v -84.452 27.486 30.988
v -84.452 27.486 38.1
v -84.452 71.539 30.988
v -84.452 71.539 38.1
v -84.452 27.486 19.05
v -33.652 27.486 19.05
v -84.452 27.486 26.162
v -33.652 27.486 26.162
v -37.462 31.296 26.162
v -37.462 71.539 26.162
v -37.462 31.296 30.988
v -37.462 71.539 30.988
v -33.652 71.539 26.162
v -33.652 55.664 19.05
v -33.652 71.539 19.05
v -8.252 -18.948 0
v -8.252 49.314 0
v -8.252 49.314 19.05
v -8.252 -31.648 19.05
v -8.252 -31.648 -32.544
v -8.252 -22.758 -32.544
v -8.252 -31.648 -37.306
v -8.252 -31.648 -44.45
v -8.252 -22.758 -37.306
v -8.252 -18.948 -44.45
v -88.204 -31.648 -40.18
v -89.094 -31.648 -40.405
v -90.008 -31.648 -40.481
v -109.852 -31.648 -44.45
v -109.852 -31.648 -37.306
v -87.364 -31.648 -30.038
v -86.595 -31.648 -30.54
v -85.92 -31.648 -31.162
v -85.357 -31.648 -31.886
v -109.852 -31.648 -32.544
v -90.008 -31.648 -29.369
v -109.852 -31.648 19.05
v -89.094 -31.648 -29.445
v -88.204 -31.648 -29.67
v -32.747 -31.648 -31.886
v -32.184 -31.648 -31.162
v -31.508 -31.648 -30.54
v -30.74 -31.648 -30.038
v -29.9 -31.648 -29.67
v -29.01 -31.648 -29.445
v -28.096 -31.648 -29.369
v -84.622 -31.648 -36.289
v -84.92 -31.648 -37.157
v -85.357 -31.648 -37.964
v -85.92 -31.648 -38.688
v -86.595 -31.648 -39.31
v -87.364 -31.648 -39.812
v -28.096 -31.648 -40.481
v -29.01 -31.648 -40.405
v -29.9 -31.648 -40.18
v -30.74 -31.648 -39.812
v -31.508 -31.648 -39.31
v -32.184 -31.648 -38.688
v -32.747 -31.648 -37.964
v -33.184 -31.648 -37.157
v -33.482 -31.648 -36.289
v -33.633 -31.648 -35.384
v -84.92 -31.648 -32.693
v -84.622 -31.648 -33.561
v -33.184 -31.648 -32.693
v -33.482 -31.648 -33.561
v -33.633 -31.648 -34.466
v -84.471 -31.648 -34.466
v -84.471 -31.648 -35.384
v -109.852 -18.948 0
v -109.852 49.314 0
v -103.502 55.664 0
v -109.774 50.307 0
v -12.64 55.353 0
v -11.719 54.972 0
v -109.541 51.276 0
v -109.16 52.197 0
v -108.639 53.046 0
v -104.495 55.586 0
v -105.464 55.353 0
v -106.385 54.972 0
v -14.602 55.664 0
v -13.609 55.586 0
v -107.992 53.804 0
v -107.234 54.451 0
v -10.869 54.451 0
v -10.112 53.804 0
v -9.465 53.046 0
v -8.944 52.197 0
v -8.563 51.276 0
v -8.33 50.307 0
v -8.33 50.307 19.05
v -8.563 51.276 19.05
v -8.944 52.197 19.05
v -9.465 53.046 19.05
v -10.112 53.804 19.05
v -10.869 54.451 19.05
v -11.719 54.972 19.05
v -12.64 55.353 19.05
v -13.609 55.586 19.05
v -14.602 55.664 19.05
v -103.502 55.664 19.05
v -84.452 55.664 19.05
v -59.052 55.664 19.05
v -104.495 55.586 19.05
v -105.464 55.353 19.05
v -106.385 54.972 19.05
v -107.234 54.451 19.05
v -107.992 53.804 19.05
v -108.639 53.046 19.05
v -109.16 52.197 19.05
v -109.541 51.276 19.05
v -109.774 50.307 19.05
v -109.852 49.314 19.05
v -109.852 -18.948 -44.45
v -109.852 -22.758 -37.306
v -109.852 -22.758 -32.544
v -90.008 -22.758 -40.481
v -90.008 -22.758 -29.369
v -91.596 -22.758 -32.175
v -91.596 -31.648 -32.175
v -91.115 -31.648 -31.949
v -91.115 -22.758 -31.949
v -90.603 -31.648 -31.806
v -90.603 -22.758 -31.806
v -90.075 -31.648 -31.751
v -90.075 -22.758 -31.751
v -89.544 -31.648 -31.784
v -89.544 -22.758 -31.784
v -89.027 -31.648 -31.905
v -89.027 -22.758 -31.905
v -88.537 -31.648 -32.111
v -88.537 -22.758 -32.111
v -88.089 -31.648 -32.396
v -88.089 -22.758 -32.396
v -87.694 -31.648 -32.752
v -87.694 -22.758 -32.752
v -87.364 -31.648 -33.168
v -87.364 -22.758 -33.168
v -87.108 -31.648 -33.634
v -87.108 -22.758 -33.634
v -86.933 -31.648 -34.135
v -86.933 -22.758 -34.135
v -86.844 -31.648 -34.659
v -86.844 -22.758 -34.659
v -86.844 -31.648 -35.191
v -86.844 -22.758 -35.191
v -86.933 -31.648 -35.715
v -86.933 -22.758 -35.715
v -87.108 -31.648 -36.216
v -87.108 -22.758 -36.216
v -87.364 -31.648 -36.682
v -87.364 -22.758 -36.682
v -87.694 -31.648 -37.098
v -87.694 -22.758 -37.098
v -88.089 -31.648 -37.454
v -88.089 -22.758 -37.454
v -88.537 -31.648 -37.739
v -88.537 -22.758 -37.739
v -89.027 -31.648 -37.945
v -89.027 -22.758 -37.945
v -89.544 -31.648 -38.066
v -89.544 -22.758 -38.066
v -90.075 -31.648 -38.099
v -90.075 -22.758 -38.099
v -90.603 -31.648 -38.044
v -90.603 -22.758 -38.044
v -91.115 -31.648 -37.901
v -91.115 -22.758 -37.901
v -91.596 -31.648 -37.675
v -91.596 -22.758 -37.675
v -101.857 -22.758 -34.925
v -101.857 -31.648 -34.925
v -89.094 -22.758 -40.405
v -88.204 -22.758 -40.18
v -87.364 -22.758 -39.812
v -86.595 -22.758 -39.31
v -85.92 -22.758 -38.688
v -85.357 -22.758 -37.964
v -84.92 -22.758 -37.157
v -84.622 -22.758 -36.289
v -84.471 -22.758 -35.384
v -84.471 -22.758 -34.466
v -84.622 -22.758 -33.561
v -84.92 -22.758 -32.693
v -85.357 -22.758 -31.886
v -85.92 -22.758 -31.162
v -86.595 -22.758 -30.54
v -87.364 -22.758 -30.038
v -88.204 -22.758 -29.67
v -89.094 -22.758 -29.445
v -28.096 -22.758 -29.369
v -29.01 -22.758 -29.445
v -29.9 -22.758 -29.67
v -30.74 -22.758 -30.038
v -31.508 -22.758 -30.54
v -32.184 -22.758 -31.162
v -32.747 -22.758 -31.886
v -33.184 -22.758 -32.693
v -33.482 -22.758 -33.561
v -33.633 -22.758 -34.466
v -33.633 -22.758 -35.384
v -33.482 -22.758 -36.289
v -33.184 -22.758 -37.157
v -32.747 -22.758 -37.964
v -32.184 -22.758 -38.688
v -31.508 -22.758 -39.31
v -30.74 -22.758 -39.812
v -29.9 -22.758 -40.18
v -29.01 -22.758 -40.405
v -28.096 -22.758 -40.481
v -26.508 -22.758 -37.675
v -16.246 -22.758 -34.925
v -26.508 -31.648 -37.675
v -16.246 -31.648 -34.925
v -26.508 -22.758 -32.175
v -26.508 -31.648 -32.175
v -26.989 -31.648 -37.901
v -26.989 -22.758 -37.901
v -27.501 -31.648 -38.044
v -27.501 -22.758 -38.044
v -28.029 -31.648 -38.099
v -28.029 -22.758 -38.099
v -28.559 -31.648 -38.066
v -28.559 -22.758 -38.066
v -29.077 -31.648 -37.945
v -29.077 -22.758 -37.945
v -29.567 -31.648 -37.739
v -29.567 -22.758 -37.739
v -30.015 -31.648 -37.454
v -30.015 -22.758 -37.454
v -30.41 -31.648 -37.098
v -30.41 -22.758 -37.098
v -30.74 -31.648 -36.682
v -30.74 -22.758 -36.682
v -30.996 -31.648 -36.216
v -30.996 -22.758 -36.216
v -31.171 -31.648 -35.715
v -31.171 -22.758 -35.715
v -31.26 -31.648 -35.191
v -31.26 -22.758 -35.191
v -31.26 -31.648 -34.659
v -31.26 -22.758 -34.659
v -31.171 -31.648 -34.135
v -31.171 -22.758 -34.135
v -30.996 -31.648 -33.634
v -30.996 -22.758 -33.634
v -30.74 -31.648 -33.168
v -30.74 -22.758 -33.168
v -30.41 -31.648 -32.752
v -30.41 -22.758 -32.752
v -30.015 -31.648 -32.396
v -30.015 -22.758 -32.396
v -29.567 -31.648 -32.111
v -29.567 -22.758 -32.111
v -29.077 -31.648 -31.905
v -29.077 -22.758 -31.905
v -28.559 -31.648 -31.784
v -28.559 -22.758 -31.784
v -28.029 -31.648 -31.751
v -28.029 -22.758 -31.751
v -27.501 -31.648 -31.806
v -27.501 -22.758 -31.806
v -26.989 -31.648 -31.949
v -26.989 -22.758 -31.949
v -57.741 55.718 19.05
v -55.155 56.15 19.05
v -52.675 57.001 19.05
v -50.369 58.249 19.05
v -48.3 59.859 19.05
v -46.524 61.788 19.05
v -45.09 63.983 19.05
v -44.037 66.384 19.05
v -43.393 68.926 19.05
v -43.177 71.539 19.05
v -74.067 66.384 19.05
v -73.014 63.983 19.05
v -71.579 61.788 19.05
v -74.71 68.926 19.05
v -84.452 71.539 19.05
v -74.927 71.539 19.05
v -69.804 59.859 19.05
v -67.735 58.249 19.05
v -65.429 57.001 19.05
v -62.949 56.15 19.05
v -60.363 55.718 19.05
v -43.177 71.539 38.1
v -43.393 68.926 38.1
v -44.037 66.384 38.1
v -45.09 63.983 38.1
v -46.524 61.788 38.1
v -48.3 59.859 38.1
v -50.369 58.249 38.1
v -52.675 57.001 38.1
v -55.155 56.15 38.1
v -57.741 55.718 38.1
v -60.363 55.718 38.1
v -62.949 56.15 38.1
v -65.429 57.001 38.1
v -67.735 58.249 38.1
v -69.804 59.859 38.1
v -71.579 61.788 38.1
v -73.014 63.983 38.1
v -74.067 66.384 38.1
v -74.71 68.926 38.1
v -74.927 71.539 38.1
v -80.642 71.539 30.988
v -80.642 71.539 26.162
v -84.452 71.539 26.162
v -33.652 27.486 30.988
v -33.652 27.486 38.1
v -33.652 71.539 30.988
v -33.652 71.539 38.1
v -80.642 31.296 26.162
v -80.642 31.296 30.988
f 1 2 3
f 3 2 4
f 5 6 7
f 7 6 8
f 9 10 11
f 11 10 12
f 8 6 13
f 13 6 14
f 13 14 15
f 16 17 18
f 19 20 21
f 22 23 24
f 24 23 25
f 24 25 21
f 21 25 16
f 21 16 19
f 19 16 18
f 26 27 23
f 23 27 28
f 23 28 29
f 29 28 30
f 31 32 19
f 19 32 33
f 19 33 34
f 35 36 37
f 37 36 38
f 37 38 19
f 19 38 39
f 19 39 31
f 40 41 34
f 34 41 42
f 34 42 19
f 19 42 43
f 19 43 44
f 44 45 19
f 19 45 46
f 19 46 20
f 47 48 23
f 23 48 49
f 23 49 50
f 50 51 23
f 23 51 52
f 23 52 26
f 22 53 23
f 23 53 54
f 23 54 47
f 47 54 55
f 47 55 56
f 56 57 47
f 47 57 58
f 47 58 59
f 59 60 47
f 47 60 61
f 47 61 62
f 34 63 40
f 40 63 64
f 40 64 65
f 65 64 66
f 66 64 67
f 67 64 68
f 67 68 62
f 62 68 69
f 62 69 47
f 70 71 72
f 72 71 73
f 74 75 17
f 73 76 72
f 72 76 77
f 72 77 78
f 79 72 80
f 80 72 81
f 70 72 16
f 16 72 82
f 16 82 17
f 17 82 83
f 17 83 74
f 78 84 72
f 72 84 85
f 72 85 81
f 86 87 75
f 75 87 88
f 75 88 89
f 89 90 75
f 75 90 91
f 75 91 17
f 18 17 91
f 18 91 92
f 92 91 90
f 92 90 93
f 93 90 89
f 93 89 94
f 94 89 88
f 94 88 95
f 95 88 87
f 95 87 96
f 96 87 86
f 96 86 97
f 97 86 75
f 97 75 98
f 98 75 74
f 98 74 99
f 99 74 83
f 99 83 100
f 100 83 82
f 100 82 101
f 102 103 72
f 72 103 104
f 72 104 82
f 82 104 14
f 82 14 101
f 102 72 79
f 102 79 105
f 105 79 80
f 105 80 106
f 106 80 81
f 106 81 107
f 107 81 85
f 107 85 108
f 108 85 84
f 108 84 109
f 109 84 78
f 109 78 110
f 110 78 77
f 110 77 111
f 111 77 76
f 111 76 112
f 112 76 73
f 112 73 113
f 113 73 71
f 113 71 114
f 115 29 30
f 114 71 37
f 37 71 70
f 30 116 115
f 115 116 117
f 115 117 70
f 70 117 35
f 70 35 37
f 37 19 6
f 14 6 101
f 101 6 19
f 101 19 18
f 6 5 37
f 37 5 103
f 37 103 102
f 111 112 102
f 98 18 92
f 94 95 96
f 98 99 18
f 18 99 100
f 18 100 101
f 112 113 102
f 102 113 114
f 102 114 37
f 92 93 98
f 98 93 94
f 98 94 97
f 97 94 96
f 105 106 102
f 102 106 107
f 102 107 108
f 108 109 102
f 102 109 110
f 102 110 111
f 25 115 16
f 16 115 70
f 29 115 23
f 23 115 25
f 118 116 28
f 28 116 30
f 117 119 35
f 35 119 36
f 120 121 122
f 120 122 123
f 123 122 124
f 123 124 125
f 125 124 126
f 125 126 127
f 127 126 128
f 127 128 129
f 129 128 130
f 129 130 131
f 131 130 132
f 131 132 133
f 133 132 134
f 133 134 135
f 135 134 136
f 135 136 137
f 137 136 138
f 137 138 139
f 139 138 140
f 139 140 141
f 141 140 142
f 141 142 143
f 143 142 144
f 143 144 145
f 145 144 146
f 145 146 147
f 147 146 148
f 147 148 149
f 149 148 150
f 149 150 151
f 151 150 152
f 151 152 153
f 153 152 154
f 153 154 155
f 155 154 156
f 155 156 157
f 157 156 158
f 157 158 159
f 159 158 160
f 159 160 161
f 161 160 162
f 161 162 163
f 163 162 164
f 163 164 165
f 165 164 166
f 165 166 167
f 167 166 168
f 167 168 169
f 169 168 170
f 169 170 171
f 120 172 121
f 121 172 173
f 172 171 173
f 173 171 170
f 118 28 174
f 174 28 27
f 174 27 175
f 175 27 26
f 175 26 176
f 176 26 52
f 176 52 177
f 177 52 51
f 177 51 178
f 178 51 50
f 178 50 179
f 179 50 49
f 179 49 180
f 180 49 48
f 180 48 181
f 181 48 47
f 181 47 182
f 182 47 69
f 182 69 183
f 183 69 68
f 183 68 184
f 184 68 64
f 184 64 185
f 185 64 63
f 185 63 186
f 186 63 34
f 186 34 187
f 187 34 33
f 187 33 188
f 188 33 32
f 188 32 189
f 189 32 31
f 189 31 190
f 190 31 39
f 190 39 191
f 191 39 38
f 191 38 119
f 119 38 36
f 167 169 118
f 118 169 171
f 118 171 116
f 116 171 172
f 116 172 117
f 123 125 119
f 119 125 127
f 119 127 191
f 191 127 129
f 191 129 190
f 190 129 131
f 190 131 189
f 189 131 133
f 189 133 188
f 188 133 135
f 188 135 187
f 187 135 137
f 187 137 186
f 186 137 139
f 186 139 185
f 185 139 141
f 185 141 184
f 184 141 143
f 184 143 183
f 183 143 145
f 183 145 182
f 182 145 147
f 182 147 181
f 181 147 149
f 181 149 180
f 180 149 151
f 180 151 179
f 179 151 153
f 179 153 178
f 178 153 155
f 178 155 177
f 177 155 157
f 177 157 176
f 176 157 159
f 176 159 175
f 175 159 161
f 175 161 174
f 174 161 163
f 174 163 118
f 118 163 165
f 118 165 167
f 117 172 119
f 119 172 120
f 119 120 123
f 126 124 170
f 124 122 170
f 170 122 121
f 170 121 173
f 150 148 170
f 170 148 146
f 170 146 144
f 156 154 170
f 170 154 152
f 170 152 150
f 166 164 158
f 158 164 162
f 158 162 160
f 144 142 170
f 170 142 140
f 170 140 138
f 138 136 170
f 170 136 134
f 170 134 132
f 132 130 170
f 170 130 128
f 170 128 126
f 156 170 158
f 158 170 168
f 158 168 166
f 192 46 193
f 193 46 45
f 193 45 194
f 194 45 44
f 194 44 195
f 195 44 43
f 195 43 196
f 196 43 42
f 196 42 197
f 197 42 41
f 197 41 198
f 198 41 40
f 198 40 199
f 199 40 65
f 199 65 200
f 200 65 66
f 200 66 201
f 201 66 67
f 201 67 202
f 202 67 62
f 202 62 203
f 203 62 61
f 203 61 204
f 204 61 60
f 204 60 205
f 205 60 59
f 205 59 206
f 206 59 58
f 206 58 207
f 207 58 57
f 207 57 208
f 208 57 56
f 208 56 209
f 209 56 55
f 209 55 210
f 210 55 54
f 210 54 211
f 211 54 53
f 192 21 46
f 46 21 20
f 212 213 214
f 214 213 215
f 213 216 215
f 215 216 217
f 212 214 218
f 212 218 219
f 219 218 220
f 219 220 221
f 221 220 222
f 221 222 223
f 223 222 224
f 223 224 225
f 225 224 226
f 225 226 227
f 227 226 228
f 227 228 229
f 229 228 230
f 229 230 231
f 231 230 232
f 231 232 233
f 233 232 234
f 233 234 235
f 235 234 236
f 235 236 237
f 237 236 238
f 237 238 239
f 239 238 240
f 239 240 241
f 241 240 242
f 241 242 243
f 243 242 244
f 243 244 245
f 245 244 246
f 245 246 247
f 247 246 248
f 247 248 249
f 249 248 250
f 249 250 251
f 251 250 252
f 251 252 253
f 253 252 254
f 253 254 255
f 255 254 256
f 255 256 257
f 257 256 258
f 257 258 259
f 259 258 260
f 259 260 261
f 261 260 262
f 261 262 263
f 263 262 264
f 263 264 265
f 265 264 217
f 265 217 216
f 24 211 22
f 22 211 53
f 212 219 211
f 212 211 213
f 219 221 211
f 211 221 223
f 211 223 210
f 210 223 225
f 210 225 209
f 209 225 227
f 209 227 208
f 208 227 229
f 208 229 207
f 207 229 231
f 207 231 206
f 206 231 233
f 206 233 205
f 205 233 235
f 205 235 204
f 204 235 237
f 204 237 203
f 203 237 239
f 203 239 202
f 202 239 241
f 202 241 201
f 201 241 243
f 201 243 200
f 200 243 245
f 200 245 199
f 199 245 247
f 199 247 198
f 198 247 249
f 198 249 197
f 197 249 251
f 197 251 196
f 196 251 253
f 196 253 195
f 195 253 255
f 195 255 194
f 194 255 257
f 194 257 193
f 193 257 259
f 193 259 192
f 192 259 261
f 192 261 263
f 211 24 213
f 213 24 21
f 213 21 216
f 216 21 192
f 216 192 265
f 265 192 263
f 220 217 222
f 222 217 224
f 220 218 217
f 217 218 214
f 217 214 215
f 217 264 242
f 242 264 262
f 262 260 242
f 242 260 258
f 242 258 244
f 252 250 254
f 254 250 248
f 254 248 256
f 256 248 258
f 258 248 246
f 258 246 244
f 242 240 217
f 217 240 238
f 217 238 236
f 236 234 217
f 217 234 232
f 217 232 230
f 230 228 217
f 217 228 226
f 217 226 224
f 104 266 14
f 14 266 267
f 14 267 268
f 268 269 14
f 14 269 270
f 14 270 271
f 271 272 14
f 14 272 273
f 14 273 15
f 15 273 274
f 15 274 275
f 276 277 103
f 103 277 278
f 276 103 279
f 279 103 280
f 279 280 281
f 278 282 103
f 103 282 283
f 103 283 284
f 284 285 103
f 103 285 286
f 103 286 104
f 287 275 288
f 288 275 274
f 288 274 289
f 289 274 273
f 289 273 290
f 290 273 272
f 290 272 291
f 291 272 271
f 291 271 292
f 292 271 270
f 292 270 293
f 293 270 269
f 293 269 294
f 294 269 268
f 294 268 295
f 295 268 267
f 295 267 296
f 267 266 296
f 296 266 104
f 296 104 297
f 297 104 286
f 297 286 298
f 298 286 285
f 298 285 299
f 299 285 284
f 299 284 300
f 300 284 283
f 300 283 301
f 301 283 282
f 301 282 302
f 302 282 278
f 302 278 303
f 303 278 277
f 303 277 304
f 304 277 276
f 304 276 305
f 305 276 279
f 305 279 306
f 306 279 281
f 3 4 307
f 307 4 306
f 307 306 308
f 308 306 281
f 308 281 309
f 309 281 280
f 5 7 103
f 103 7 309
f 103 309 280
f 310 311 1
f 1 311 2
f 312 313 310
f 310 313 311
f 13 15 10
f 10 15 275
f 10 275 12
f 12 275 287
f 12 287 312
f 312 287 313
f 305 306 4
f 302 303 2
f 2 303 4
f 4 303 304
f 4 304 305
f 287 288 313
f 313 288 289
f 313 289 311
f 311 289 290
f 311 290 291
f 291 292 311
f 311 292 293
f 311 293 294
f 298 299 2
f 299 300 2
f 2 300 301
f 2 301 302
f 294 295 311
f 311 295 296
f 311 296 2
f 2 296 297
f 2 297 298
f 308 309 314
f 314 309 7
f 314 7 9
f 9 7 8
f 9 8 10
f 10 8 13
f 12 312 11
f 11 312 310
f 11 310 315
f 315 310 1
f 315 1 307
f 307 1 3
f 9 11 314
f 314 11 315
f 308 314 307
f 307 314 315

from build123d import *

# Parameters (mm, degrees)
BOSS_EXTRUDE4_DEPTH = 19.05
SKETCH4_W           = 101.6
SKETCH4_H           = 19.05
BOSS_EXTRUDE7_DEPTH = 12.7
SKETCH5_W           = 101.6
SKETCH5_H           = 12.7
BOSS_EXTRUDE8_DEPTH = 44.45
CUT_EXTRUDE1_DEPTH  = 8.89
BOSS_EXTRUDE9_DEPTH = 19.05
SKETCH9_W           = 4.826
SKETCH9_H           = 44.053125
CUT_EXTRUDE2_DEPTH  = 3.81
SKETCH10_W          = 46.99
SKETCH10_H          = 4.826
CUT_EXTRUDE3_DEPTH  = 3.81
SKETCH11_W          = 4.826
SKETCH11_H          = 40.243125
CUT_EXTRUDE4_DEPTH  = 3.81


with BuildPart() as part:
    # Sketch1 → Boss-Extrude4 (new body)
    with BuildSketch(Plane.XY):
        with BuildLine():
            Line((-109.851890308, -12.598485557), (-109.851890308, -18.948485557))
            Line((-109.851890308, -18.948485557), (-103.501890308, -18.948485557))
            Line((-103.501890308, -18.948485557), (-14.601890308, -18.948485557))
            Line((-14.601890308, -18.948485557), (-8.251890308, -18.948485557))
            Line((-8.251890308, -18.948485557), (-8.251890308, -12.598485557))
            Line((-8.251890308, -12.598485557), (-8.251890308, 49.314014443))
            ThreePointArc((-8.251890308, 49.314014443), (-10.111762247, 53.804142503), (-14.601890308, 55.664014443))
            Line((-14.601890308, 55.664014443), (-103.501890308, 55.664014443))
            ThreePointArc((-103.501890308, 55.664014443), (-107.992018368, 53.804142503), (-109.851890308, 49.314014443))
            Line((-109.851890308, 49.314014443), (-109.851890308, -12.598485557))
        make_face()
    extrude(amount=BOSS_EXTRUDE4_DEPTH)

    # Sketch4 → Boss-Extrude7 (add)
    with BuildSketch(Plane(origin=(0, -18.948485557, 0), x_dir=(-1, 0, 0), z_dir=(0, -1, 0))):
        with Locations((59.051890308, -9.525)):
            Rectangle(SKETCH4_W, SKETCH4_H)
    extrude(amount=BOSS_EXTRUDE7_DEPTH)

    # Sketch5 → Boss-Extrude8 (add)
    with BuildSketch(Plane(origin=(0, 0, 0), x_dir=(-1, 0, 0), z_dir=(0, 0, -1))):
        with Locations((59.051890308, -25.298485557)):
            Rectangle(SKETCH5_W, SKETCH5_H)
    extrude(amount=BOSS_EXTRUDE8_DEPTH)

    # Sketch7 → Cut-Extrude1 (cut)
    with BuildSketch(Plane.XZ.offset(31.648485557)):
        with BuildLine():
            Line((-26.362020963, -40.203870905), (-8.251890308, -37.30625))
            Line((-8.251890308, -37.30625), (-8.251890308, -32.54375))
            Line((-8.251890308, -32.54375), (-26.362020963, -29.646129095))
            ThreePointArc((-26.362020963, -29.646129095), (-24.177794705, -30.985152301), (-22.826560616, -33.161845648))
            Line((-22.826560616, -33.161845648), (-16.246378994, -34.925))
            Line((-16.246378994, -34.925), (-22.826560616, -36.688154352))
            ThreePointArc((-22.826560616, -36.688154352), (-24.177794705, -38.864847699), (-26.362020963, -40.203870905))
        make_face()
        with BuildLine():
            Line((-28.095640308, -40.48125), (-26.362020963, -40.203870905))
            ThreePointArc((-26.362020963, -40.203870905), (-24.177794705, -38.864847699), (-22.826560616, -36.688154352))
            Line((-22.826560616, -36.688154352), (-26.508140308, -37.674630657))
            ThreePointArc((-26.508140308, -37.674630657), (-27.27388984, -37.991814498), (-28.095640308, -38.1))
            ThreePointArc((-28.095640308, -38.1), (-31.270640308, -34.925), (-28.095640308, -31.75))
            ThreePointArc((-28.095640308, -31.75), (-27.27388984, -31.858185502), (-26.508140308, -32.175369343))
            Line((-26.508140308, -32.175369343), (-22.826560616, -33.161845648))
            ThreePointArc((-22.826560616, -33.161845648), (-24.177794705, -30.985152301), (-26.362020963, -29.646129095))
            Line((-26.362020963, -29.646129095), (-28.095640308, -29.36875))
            ThreePointArc((-28.095640308, -29.36875), (-33.651890308, -34.925), (-28.095640308, -40.48125))
        make_face()
        with BuildLine():
            Line((-109.851890308, -32.54375), (-109.851890308, -37.30625))
            Line((-109.851890308, -37.30625), (-91.741759653, -40.203870905))
            ThreePointArc((-91.741759653, -40.203870905), (-93.925985911, -38.864847699), (-95.277219999, -36.688154352))
            Line((-95.277219999, -36.688154352), (-101.857401622, -34.925))
            Line((-101.857401622, -34.925), (-95.277219999, -33.161845648))
            ThreePointArc((-95.277219999, -33.161845648), (-93.925985911, -30.985152301), (-91.741759653, -29.646129095))
            Line((-91.741759653, -29.646129095), (-109.851890308, -32.54375))
        make_face()
        with BuildLine():
            ThreePointArc((-95.277219999, -36.688154352), (-93.925985911, -38.864847699), (-91.741759653, -40.203870905))
            Line((-91.741759653, -40.203870905), (-90.008140308, -40.48125))
            ThreePointArc((-90.008140308, -40.48125), (-86.079278255, -38.853862053), (-84.451890308, -34.925))
            ThreePointArc((-84.451890308, -34.925), (-86.079278255, -30.996137947), (-90.008140308, -29.36875))
            Line((-90.008140308, -29.36875), (-91.741759653, -29.646129095))
            ThreePointArc((-91.741759653, -29.646129095), (-93.925985911, -30.985152301), (-95.277219999, -33.161845648))
            Line((-95.277219999, -33.161845648), (-91.595640308, -32.175369343))
            ThreePointArc((-91.595640308, -32.175369343), (-90.829890776, -31.858185502), (-90.008140308, -31.75))
            ThreePointArc((-90.008140308, -31.75), (-87.763076278, -32.67993597), (-86.833140308, -34.925))
            ThreePointArc((-86.833140308, -34.925), (-87.763076278, -37.17006403), (-90.008140308, -38.1))
            ThreePointArc((-90.008140308, -38.1), (-90.829890776, -37.991814498), (-91.595640308, -37.674630657))
            Line((-91.595640308, -37.674630657), (-95.277219999, -36.688154352))
        make_face()
    extrude(amount=-CUT_EXTRUDE1_DEPTH, mode=Mode.SUBTRACT)

    # Sketch3 → Boss-Extrude9 (add)
    with BuildSketch(Plane.XY.offset(19.05)):
        with BuildLine():
            Line((-84.451890308, 71.539014443), (-84.451890308, 55.664014443))
            Line((-84.451890308, 55.664014443), (-59.05189022, 55.664014443))
            ThreePointArc((-59.05189022, 55.664014443), (-70.277210428, 60.31369426), (-74.926890308, 71.539014443))
            Line((-74.926890308, 71.539014443), (-84.451890308, 71.539014443))
        make_face()
        Polygon((-84.451890308, 55.664014443), (-84.451890308, 27.485889443), (-33.651890308, 27.485889443), (-33.651890308, 55.664014443), (-59.05189022, 55.664014443), align=None)
        with BuildLine():
            Line((-59.05189022, 55.664014443), (-33.651890308, 55.664014443))
            Line((-33.651890308, 55.664014443), (-33.651890308, 71.539014443))
            Line((-33.651890308, 71.539014443), (-43.176890308, 71.539014443))
            ThreePointArc((-43.176890308, 71.539014443), (-47.826570125, 60.313694322), (-59.05189022, 55.664014443))
        make_face()
    extrude(amount=BOSS_EXTRUDE9_DEPTH)

    # Sketch9 → Cut-Extrude2 (cut)
    with BuildSketch(Plane(origin=(-33.651890308, 0, 0), x_dir=(0, 0, -1), z_dir=(1, 0, 0))):
        with Locations((-28.575, 49.512451943)):
            Rectangle(SKETCH9_W, SKETCH9_H)
    extrude(amount=-CUT_EXTRUDE2_DEPTH, mode=Mode.SUBTRACT)

    # Sketch10 → Cut-Extrude3 (cut)
    with BuildSketch(Plane.XZ.offset(-27.485889443)):
        with Locations((-60.956890308, 28.575)):
            Rectangle(SKETCH10_W, SKETCH10_H)
    extrude(amount=-CUT_EXTRUDE3_DEPTH, mode=Mode.SUBTRACT)

    # Sketch11 → Cut-Extrude4 (cut)
    with BuildSketch(Plane.ZY.offset(84.451890308)):
        with Locations((28.575, 51.417451943)):
            Rectangle(SKETCH11_W, SKETCH11_H)
    extrude(amount=-CUT_EXTRUDE4_DEPTH, mode=Mode.SUBTRACT)


solid = part.part
